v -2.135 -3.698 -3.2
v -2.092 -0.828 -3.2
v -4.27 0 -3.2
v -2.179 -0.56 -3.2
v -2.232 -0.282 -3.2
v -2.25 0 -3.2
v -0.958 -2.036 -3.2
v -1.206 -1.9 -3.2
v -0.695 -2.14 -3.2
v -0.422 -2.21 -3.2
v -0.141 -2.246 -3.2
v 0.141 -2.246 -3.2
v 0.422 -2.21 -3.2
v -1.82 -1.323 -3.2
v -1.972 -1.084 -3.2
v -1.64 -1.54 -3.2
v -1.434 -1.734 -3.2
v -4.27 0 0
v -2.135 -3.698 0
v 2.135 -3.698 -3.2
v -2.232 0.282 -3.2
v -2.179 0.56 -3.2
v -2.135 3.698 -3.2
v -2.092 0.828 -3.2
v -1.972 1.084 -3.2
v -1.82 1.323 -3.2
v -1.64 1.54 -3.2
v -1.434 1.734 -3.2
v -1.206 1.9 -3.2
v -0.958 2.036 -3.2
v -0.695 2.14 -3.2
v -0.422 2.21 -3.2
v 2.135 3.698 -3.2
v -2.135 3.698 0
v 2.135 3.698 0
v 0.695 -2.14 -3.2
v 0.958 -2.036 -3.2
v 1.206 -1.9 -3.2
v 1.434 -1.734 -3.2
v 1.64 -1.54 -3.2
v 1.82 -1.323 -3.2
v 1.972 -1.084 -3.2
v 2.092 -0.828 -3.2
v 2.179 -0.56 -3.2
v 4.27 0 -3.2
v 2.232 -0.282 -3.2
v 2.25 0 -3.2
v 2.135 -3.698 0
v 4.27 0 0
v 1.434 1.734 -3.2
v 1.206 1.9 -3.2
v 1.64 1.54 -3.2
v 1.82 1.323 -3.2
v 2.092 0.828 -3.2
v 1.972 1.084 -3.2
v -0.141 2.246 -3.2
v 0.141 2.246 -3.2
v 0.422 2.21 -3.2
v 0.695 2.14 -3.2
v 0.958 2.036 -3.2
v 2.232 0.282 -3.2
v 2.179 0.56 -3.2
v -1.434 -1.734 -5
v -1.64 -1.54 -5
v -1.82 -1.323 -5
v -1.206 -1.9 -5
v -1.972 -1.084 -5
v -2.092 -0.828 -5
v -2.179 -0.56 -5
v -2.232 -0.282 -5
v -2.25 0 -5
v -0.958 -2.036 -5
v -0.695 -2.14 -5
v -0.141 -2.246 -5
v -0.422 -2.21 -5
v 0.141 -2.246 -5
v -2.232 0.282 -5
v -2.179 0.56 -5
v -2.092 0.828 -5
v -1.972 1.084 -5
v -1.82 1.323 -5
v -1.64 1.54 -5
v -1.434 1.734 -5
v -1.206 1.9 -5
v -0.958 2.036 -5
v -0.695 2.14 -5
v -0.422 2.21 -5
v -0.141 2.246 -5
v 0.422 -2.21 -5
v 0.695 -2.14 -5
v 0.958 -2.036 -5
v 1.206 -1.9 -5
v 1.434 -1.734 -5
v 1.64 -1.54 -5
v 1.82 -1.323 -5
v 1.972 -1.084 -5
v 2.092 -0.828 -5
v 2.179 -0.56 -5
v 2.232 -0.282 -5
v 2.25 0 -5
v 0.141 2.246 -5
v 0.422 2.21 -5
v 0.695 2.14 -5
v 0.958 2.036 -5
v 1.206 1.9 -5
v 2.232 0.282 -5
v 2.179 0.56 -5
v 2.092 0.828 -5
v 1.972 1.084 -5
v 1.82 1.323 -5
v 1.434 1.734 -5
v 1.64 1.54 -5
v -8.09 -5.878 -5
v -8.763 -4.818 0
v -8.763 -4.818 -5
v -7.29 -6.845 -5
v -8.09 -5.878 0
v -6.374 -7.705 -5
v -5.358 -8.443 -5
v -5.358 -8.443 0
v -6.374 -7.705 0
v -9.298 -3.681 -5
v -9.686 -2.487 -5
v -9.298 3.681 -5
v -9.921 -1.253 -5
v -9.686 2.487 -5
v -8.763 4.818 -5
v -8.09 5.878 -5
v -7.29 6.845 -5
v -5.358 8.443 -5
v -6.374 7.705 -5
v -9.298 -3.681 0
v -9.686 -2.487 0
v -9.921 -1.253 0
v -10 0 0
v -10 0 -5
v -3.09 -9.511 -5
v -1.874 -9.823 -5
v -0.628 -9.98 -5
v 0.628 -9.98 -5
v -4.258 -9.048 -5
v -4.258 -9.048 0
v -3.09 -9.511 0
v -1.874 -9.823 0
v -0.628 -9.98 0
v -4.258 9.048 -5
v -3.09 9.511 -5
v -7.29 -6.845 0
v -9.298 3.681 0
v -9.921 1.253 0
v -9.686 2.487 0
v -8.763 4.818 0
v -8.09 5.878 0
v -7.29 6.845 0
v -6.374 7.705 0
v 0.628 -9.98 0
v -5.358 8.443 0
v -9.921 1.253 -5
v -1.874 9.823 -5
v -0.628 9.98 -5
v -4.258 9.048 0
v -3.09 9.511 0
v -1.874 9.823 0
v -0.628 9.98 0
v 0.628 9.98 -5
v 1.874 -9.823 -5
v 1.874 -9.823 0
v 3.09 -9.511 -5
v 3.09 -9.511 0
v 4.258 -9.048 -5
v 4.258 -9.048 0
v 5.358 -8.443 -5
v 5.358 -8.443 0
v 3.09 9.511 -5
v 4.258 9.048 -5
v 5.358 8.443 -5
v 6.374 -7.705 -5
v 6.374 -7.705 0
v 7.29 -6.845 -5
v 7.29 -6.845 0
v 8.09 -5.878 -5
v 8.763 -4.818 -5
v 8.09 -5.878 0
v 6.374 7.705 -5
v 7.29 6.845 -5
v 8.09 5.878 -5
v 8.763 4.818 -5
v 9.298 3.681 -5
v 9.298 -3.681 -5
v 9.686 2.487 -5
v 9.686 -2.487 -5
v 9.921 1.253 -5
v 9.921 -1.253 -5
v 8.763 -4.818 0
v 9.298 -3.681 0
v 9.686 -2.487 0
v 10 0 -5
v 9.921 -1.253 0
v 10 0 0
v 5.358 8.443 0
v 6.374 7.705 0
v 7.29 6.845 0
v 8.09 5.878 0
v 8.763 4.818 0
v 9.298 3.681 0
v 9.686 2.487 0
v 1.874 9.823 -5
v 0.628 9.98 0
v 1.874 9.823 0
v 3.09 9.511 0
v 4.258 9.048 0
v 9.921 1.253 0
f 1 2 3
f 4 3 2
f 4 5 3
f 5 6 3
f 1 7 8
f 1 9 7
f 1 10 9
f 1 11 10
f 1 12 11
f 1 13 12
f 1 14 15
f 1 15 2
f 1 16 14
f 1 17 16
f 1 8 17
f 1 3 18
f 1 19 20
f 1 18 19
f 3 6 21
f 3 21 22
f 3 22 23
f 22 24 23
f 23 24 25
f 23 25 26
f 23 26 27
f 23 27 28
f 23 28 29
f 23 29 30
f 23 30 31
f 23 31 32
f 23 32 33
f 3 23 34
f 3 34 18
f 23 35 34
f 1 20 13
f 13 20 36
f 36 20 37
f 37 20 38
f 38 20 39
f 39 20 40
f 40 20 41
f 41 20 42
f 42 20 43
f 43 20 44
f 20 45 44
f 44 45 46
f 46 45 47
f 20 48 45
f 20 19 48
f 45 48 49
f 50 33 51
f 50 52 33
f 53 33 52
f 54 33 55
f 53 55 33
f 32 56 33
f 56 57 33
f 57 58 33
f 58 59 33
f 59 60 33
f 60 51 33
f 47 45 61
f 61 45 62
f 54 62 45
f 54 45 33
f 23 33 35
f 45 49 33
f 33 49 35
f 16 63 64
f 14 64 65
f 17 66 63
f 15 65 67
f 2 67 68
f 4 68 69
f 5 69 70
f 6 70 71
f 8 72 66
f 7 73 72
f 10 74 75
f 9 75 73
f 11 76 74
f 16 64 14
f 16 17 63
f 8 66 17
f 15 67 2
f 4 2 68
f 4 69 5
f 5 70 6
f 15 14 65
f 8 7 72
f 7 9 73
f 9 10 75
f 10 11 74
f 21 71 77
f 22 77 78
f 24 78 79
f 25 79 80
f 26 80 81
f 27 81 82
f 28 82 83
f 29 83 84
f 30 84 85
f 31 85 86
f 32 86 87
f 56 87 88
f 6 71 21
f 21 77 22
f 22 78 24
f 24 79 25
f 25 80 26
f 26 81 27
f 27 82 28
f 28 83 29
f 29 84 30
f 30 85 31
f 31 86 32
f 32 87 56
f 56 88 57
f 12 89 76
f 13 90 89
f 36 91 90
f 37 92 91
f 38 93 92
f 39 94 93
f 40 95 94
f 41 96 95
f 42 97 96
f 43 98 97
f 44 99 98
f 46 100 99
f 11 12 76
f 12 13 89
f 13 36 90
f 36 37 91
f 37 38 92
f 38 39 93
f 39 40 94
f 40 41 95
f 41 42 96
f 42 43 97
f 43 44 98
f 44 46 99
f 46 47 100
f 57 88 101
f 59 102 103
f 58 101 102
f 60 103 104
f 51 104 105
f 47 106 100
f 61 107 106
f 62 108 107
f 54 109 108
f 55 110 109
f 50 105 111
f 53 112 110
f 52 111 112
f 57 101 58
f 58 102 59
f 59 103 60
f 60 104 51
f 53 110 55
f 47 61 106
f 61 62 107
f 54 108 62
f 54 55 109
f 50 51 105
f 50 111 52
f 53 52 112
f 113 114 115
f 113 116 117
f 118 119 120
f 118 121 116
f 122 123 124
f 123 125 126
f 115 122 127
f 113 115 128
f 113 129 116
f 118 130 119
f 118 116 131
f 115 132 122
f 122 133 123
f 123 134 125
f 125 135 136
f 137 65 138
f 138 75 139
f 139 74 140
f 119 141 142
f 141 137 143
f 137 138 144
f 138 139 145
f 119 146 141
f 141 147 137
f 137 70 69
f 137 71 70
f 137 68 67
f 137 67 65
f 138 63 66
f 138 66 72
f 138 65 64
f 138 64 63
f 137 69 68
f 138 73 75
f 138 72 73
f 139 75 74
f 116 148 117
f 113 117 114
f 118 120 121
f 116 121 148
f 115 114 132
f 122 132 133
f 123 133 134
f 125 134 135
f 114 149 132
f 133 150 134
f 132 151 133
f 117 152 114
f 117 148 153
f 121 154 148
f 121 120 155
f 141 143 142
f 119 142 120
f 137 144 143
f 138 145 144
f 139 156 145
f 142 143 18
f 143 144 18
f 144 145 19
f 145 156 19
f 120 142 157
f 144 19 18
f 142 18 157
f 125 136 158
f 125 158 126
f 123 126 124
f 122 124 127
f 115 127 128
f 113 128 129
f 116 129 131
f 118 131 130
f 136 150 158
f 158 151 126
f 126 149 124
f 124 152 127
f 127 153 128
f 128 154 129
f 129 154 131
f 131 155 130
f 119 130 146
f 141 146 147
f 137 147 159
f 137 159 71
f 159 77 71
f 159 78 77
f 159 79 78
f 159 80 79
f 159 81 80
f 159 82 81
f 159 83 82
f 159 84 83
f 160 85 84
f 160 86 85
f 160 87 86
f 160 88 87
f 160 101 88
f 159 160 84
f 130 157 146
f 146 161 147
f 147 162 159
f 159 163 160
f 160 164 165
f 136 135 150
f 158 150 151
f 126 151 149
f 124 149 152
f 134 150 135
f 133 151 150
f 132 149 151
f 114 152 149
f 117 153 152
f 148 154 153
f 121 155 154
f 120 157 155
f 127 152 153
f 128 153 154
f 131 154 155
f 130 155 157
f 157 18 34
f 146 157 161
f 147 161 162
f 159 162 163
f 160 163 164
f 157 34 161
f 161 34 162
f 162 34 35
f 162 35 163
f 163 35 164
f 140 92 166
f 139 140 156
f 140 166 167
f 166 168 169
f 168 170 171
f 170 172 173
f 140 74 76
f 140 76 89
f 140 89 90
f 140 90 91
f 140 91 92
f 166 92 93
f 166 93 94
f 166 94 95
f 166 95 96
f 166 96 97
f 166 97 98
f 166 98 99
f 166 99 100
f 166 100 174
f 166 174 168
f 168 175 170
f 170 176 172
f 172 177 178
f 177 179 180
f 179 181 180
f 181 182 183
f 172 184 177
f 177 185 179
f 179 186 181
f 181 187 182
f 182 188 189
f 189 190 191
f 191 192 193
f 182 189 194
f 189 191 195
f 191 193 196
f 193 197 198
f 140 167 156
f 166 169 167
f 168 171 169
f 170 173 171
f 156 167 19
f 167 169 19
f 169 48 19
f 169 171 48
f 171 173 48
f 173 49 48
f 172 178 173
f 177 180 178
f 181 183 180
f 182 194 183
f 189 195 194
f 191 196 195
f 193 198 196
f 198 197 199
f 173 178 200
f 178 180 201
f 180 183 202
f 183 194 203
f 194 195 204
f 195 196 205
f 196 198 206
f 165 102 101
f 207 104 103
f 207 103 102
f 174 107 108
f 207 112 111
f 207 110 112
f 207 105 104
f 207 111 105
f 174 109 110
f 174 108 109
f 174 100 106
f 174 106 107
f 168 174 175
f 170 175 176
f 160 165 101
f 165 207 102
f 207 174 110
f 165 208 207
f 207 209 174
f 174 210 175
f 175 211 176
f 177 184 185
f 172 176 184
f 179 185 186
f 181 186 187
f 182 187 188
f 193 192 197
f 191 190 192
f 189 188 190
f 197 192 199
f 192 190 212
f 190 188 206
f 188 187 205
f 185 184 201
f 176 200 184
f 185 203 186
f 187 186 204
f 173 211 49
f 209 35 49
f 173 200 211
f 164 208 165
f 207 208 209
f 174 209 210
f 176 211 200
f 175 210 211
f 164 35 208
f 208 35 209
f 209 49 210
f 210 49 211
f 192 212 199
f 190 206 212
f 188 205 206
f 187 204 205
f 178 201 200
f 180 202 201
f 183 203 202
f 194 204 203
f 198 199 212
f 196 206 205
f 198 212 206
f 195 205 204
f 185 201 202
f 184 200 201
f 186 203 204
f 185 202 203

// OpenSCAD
$fn = 50;

difference() {
	union() {
		translate(v = [0, 0, -5.0]) {
			cylinder(h = 5.0, r = 10.0);
		}
	}
	union() {
		translate(v = [0, 0, 0]) {
			rotate(a = [0, 0, 0]) {
				difference() {
					union() {
						translate(v = [0, 0, -3.2]) {
							linear_extrude(height = 3.2) {
								polygon(points = [[4.2698, 0.0], [2.1349000000000005, 3.697755269078796], [-2.134899999999999, 3.6977552690787965], [-4.2698, 5.228996902999369e-16], [-2.134900000000002, -3.6977552690787956], [2.1348999999999974, -3.697755269078798]]);
							}
						}
					}
					union();
				}
			}
		}
		#translate(v = [0, 0, -100.0]) {
			cylinder(h = 200, r = 2.25);
		}
	}
}
